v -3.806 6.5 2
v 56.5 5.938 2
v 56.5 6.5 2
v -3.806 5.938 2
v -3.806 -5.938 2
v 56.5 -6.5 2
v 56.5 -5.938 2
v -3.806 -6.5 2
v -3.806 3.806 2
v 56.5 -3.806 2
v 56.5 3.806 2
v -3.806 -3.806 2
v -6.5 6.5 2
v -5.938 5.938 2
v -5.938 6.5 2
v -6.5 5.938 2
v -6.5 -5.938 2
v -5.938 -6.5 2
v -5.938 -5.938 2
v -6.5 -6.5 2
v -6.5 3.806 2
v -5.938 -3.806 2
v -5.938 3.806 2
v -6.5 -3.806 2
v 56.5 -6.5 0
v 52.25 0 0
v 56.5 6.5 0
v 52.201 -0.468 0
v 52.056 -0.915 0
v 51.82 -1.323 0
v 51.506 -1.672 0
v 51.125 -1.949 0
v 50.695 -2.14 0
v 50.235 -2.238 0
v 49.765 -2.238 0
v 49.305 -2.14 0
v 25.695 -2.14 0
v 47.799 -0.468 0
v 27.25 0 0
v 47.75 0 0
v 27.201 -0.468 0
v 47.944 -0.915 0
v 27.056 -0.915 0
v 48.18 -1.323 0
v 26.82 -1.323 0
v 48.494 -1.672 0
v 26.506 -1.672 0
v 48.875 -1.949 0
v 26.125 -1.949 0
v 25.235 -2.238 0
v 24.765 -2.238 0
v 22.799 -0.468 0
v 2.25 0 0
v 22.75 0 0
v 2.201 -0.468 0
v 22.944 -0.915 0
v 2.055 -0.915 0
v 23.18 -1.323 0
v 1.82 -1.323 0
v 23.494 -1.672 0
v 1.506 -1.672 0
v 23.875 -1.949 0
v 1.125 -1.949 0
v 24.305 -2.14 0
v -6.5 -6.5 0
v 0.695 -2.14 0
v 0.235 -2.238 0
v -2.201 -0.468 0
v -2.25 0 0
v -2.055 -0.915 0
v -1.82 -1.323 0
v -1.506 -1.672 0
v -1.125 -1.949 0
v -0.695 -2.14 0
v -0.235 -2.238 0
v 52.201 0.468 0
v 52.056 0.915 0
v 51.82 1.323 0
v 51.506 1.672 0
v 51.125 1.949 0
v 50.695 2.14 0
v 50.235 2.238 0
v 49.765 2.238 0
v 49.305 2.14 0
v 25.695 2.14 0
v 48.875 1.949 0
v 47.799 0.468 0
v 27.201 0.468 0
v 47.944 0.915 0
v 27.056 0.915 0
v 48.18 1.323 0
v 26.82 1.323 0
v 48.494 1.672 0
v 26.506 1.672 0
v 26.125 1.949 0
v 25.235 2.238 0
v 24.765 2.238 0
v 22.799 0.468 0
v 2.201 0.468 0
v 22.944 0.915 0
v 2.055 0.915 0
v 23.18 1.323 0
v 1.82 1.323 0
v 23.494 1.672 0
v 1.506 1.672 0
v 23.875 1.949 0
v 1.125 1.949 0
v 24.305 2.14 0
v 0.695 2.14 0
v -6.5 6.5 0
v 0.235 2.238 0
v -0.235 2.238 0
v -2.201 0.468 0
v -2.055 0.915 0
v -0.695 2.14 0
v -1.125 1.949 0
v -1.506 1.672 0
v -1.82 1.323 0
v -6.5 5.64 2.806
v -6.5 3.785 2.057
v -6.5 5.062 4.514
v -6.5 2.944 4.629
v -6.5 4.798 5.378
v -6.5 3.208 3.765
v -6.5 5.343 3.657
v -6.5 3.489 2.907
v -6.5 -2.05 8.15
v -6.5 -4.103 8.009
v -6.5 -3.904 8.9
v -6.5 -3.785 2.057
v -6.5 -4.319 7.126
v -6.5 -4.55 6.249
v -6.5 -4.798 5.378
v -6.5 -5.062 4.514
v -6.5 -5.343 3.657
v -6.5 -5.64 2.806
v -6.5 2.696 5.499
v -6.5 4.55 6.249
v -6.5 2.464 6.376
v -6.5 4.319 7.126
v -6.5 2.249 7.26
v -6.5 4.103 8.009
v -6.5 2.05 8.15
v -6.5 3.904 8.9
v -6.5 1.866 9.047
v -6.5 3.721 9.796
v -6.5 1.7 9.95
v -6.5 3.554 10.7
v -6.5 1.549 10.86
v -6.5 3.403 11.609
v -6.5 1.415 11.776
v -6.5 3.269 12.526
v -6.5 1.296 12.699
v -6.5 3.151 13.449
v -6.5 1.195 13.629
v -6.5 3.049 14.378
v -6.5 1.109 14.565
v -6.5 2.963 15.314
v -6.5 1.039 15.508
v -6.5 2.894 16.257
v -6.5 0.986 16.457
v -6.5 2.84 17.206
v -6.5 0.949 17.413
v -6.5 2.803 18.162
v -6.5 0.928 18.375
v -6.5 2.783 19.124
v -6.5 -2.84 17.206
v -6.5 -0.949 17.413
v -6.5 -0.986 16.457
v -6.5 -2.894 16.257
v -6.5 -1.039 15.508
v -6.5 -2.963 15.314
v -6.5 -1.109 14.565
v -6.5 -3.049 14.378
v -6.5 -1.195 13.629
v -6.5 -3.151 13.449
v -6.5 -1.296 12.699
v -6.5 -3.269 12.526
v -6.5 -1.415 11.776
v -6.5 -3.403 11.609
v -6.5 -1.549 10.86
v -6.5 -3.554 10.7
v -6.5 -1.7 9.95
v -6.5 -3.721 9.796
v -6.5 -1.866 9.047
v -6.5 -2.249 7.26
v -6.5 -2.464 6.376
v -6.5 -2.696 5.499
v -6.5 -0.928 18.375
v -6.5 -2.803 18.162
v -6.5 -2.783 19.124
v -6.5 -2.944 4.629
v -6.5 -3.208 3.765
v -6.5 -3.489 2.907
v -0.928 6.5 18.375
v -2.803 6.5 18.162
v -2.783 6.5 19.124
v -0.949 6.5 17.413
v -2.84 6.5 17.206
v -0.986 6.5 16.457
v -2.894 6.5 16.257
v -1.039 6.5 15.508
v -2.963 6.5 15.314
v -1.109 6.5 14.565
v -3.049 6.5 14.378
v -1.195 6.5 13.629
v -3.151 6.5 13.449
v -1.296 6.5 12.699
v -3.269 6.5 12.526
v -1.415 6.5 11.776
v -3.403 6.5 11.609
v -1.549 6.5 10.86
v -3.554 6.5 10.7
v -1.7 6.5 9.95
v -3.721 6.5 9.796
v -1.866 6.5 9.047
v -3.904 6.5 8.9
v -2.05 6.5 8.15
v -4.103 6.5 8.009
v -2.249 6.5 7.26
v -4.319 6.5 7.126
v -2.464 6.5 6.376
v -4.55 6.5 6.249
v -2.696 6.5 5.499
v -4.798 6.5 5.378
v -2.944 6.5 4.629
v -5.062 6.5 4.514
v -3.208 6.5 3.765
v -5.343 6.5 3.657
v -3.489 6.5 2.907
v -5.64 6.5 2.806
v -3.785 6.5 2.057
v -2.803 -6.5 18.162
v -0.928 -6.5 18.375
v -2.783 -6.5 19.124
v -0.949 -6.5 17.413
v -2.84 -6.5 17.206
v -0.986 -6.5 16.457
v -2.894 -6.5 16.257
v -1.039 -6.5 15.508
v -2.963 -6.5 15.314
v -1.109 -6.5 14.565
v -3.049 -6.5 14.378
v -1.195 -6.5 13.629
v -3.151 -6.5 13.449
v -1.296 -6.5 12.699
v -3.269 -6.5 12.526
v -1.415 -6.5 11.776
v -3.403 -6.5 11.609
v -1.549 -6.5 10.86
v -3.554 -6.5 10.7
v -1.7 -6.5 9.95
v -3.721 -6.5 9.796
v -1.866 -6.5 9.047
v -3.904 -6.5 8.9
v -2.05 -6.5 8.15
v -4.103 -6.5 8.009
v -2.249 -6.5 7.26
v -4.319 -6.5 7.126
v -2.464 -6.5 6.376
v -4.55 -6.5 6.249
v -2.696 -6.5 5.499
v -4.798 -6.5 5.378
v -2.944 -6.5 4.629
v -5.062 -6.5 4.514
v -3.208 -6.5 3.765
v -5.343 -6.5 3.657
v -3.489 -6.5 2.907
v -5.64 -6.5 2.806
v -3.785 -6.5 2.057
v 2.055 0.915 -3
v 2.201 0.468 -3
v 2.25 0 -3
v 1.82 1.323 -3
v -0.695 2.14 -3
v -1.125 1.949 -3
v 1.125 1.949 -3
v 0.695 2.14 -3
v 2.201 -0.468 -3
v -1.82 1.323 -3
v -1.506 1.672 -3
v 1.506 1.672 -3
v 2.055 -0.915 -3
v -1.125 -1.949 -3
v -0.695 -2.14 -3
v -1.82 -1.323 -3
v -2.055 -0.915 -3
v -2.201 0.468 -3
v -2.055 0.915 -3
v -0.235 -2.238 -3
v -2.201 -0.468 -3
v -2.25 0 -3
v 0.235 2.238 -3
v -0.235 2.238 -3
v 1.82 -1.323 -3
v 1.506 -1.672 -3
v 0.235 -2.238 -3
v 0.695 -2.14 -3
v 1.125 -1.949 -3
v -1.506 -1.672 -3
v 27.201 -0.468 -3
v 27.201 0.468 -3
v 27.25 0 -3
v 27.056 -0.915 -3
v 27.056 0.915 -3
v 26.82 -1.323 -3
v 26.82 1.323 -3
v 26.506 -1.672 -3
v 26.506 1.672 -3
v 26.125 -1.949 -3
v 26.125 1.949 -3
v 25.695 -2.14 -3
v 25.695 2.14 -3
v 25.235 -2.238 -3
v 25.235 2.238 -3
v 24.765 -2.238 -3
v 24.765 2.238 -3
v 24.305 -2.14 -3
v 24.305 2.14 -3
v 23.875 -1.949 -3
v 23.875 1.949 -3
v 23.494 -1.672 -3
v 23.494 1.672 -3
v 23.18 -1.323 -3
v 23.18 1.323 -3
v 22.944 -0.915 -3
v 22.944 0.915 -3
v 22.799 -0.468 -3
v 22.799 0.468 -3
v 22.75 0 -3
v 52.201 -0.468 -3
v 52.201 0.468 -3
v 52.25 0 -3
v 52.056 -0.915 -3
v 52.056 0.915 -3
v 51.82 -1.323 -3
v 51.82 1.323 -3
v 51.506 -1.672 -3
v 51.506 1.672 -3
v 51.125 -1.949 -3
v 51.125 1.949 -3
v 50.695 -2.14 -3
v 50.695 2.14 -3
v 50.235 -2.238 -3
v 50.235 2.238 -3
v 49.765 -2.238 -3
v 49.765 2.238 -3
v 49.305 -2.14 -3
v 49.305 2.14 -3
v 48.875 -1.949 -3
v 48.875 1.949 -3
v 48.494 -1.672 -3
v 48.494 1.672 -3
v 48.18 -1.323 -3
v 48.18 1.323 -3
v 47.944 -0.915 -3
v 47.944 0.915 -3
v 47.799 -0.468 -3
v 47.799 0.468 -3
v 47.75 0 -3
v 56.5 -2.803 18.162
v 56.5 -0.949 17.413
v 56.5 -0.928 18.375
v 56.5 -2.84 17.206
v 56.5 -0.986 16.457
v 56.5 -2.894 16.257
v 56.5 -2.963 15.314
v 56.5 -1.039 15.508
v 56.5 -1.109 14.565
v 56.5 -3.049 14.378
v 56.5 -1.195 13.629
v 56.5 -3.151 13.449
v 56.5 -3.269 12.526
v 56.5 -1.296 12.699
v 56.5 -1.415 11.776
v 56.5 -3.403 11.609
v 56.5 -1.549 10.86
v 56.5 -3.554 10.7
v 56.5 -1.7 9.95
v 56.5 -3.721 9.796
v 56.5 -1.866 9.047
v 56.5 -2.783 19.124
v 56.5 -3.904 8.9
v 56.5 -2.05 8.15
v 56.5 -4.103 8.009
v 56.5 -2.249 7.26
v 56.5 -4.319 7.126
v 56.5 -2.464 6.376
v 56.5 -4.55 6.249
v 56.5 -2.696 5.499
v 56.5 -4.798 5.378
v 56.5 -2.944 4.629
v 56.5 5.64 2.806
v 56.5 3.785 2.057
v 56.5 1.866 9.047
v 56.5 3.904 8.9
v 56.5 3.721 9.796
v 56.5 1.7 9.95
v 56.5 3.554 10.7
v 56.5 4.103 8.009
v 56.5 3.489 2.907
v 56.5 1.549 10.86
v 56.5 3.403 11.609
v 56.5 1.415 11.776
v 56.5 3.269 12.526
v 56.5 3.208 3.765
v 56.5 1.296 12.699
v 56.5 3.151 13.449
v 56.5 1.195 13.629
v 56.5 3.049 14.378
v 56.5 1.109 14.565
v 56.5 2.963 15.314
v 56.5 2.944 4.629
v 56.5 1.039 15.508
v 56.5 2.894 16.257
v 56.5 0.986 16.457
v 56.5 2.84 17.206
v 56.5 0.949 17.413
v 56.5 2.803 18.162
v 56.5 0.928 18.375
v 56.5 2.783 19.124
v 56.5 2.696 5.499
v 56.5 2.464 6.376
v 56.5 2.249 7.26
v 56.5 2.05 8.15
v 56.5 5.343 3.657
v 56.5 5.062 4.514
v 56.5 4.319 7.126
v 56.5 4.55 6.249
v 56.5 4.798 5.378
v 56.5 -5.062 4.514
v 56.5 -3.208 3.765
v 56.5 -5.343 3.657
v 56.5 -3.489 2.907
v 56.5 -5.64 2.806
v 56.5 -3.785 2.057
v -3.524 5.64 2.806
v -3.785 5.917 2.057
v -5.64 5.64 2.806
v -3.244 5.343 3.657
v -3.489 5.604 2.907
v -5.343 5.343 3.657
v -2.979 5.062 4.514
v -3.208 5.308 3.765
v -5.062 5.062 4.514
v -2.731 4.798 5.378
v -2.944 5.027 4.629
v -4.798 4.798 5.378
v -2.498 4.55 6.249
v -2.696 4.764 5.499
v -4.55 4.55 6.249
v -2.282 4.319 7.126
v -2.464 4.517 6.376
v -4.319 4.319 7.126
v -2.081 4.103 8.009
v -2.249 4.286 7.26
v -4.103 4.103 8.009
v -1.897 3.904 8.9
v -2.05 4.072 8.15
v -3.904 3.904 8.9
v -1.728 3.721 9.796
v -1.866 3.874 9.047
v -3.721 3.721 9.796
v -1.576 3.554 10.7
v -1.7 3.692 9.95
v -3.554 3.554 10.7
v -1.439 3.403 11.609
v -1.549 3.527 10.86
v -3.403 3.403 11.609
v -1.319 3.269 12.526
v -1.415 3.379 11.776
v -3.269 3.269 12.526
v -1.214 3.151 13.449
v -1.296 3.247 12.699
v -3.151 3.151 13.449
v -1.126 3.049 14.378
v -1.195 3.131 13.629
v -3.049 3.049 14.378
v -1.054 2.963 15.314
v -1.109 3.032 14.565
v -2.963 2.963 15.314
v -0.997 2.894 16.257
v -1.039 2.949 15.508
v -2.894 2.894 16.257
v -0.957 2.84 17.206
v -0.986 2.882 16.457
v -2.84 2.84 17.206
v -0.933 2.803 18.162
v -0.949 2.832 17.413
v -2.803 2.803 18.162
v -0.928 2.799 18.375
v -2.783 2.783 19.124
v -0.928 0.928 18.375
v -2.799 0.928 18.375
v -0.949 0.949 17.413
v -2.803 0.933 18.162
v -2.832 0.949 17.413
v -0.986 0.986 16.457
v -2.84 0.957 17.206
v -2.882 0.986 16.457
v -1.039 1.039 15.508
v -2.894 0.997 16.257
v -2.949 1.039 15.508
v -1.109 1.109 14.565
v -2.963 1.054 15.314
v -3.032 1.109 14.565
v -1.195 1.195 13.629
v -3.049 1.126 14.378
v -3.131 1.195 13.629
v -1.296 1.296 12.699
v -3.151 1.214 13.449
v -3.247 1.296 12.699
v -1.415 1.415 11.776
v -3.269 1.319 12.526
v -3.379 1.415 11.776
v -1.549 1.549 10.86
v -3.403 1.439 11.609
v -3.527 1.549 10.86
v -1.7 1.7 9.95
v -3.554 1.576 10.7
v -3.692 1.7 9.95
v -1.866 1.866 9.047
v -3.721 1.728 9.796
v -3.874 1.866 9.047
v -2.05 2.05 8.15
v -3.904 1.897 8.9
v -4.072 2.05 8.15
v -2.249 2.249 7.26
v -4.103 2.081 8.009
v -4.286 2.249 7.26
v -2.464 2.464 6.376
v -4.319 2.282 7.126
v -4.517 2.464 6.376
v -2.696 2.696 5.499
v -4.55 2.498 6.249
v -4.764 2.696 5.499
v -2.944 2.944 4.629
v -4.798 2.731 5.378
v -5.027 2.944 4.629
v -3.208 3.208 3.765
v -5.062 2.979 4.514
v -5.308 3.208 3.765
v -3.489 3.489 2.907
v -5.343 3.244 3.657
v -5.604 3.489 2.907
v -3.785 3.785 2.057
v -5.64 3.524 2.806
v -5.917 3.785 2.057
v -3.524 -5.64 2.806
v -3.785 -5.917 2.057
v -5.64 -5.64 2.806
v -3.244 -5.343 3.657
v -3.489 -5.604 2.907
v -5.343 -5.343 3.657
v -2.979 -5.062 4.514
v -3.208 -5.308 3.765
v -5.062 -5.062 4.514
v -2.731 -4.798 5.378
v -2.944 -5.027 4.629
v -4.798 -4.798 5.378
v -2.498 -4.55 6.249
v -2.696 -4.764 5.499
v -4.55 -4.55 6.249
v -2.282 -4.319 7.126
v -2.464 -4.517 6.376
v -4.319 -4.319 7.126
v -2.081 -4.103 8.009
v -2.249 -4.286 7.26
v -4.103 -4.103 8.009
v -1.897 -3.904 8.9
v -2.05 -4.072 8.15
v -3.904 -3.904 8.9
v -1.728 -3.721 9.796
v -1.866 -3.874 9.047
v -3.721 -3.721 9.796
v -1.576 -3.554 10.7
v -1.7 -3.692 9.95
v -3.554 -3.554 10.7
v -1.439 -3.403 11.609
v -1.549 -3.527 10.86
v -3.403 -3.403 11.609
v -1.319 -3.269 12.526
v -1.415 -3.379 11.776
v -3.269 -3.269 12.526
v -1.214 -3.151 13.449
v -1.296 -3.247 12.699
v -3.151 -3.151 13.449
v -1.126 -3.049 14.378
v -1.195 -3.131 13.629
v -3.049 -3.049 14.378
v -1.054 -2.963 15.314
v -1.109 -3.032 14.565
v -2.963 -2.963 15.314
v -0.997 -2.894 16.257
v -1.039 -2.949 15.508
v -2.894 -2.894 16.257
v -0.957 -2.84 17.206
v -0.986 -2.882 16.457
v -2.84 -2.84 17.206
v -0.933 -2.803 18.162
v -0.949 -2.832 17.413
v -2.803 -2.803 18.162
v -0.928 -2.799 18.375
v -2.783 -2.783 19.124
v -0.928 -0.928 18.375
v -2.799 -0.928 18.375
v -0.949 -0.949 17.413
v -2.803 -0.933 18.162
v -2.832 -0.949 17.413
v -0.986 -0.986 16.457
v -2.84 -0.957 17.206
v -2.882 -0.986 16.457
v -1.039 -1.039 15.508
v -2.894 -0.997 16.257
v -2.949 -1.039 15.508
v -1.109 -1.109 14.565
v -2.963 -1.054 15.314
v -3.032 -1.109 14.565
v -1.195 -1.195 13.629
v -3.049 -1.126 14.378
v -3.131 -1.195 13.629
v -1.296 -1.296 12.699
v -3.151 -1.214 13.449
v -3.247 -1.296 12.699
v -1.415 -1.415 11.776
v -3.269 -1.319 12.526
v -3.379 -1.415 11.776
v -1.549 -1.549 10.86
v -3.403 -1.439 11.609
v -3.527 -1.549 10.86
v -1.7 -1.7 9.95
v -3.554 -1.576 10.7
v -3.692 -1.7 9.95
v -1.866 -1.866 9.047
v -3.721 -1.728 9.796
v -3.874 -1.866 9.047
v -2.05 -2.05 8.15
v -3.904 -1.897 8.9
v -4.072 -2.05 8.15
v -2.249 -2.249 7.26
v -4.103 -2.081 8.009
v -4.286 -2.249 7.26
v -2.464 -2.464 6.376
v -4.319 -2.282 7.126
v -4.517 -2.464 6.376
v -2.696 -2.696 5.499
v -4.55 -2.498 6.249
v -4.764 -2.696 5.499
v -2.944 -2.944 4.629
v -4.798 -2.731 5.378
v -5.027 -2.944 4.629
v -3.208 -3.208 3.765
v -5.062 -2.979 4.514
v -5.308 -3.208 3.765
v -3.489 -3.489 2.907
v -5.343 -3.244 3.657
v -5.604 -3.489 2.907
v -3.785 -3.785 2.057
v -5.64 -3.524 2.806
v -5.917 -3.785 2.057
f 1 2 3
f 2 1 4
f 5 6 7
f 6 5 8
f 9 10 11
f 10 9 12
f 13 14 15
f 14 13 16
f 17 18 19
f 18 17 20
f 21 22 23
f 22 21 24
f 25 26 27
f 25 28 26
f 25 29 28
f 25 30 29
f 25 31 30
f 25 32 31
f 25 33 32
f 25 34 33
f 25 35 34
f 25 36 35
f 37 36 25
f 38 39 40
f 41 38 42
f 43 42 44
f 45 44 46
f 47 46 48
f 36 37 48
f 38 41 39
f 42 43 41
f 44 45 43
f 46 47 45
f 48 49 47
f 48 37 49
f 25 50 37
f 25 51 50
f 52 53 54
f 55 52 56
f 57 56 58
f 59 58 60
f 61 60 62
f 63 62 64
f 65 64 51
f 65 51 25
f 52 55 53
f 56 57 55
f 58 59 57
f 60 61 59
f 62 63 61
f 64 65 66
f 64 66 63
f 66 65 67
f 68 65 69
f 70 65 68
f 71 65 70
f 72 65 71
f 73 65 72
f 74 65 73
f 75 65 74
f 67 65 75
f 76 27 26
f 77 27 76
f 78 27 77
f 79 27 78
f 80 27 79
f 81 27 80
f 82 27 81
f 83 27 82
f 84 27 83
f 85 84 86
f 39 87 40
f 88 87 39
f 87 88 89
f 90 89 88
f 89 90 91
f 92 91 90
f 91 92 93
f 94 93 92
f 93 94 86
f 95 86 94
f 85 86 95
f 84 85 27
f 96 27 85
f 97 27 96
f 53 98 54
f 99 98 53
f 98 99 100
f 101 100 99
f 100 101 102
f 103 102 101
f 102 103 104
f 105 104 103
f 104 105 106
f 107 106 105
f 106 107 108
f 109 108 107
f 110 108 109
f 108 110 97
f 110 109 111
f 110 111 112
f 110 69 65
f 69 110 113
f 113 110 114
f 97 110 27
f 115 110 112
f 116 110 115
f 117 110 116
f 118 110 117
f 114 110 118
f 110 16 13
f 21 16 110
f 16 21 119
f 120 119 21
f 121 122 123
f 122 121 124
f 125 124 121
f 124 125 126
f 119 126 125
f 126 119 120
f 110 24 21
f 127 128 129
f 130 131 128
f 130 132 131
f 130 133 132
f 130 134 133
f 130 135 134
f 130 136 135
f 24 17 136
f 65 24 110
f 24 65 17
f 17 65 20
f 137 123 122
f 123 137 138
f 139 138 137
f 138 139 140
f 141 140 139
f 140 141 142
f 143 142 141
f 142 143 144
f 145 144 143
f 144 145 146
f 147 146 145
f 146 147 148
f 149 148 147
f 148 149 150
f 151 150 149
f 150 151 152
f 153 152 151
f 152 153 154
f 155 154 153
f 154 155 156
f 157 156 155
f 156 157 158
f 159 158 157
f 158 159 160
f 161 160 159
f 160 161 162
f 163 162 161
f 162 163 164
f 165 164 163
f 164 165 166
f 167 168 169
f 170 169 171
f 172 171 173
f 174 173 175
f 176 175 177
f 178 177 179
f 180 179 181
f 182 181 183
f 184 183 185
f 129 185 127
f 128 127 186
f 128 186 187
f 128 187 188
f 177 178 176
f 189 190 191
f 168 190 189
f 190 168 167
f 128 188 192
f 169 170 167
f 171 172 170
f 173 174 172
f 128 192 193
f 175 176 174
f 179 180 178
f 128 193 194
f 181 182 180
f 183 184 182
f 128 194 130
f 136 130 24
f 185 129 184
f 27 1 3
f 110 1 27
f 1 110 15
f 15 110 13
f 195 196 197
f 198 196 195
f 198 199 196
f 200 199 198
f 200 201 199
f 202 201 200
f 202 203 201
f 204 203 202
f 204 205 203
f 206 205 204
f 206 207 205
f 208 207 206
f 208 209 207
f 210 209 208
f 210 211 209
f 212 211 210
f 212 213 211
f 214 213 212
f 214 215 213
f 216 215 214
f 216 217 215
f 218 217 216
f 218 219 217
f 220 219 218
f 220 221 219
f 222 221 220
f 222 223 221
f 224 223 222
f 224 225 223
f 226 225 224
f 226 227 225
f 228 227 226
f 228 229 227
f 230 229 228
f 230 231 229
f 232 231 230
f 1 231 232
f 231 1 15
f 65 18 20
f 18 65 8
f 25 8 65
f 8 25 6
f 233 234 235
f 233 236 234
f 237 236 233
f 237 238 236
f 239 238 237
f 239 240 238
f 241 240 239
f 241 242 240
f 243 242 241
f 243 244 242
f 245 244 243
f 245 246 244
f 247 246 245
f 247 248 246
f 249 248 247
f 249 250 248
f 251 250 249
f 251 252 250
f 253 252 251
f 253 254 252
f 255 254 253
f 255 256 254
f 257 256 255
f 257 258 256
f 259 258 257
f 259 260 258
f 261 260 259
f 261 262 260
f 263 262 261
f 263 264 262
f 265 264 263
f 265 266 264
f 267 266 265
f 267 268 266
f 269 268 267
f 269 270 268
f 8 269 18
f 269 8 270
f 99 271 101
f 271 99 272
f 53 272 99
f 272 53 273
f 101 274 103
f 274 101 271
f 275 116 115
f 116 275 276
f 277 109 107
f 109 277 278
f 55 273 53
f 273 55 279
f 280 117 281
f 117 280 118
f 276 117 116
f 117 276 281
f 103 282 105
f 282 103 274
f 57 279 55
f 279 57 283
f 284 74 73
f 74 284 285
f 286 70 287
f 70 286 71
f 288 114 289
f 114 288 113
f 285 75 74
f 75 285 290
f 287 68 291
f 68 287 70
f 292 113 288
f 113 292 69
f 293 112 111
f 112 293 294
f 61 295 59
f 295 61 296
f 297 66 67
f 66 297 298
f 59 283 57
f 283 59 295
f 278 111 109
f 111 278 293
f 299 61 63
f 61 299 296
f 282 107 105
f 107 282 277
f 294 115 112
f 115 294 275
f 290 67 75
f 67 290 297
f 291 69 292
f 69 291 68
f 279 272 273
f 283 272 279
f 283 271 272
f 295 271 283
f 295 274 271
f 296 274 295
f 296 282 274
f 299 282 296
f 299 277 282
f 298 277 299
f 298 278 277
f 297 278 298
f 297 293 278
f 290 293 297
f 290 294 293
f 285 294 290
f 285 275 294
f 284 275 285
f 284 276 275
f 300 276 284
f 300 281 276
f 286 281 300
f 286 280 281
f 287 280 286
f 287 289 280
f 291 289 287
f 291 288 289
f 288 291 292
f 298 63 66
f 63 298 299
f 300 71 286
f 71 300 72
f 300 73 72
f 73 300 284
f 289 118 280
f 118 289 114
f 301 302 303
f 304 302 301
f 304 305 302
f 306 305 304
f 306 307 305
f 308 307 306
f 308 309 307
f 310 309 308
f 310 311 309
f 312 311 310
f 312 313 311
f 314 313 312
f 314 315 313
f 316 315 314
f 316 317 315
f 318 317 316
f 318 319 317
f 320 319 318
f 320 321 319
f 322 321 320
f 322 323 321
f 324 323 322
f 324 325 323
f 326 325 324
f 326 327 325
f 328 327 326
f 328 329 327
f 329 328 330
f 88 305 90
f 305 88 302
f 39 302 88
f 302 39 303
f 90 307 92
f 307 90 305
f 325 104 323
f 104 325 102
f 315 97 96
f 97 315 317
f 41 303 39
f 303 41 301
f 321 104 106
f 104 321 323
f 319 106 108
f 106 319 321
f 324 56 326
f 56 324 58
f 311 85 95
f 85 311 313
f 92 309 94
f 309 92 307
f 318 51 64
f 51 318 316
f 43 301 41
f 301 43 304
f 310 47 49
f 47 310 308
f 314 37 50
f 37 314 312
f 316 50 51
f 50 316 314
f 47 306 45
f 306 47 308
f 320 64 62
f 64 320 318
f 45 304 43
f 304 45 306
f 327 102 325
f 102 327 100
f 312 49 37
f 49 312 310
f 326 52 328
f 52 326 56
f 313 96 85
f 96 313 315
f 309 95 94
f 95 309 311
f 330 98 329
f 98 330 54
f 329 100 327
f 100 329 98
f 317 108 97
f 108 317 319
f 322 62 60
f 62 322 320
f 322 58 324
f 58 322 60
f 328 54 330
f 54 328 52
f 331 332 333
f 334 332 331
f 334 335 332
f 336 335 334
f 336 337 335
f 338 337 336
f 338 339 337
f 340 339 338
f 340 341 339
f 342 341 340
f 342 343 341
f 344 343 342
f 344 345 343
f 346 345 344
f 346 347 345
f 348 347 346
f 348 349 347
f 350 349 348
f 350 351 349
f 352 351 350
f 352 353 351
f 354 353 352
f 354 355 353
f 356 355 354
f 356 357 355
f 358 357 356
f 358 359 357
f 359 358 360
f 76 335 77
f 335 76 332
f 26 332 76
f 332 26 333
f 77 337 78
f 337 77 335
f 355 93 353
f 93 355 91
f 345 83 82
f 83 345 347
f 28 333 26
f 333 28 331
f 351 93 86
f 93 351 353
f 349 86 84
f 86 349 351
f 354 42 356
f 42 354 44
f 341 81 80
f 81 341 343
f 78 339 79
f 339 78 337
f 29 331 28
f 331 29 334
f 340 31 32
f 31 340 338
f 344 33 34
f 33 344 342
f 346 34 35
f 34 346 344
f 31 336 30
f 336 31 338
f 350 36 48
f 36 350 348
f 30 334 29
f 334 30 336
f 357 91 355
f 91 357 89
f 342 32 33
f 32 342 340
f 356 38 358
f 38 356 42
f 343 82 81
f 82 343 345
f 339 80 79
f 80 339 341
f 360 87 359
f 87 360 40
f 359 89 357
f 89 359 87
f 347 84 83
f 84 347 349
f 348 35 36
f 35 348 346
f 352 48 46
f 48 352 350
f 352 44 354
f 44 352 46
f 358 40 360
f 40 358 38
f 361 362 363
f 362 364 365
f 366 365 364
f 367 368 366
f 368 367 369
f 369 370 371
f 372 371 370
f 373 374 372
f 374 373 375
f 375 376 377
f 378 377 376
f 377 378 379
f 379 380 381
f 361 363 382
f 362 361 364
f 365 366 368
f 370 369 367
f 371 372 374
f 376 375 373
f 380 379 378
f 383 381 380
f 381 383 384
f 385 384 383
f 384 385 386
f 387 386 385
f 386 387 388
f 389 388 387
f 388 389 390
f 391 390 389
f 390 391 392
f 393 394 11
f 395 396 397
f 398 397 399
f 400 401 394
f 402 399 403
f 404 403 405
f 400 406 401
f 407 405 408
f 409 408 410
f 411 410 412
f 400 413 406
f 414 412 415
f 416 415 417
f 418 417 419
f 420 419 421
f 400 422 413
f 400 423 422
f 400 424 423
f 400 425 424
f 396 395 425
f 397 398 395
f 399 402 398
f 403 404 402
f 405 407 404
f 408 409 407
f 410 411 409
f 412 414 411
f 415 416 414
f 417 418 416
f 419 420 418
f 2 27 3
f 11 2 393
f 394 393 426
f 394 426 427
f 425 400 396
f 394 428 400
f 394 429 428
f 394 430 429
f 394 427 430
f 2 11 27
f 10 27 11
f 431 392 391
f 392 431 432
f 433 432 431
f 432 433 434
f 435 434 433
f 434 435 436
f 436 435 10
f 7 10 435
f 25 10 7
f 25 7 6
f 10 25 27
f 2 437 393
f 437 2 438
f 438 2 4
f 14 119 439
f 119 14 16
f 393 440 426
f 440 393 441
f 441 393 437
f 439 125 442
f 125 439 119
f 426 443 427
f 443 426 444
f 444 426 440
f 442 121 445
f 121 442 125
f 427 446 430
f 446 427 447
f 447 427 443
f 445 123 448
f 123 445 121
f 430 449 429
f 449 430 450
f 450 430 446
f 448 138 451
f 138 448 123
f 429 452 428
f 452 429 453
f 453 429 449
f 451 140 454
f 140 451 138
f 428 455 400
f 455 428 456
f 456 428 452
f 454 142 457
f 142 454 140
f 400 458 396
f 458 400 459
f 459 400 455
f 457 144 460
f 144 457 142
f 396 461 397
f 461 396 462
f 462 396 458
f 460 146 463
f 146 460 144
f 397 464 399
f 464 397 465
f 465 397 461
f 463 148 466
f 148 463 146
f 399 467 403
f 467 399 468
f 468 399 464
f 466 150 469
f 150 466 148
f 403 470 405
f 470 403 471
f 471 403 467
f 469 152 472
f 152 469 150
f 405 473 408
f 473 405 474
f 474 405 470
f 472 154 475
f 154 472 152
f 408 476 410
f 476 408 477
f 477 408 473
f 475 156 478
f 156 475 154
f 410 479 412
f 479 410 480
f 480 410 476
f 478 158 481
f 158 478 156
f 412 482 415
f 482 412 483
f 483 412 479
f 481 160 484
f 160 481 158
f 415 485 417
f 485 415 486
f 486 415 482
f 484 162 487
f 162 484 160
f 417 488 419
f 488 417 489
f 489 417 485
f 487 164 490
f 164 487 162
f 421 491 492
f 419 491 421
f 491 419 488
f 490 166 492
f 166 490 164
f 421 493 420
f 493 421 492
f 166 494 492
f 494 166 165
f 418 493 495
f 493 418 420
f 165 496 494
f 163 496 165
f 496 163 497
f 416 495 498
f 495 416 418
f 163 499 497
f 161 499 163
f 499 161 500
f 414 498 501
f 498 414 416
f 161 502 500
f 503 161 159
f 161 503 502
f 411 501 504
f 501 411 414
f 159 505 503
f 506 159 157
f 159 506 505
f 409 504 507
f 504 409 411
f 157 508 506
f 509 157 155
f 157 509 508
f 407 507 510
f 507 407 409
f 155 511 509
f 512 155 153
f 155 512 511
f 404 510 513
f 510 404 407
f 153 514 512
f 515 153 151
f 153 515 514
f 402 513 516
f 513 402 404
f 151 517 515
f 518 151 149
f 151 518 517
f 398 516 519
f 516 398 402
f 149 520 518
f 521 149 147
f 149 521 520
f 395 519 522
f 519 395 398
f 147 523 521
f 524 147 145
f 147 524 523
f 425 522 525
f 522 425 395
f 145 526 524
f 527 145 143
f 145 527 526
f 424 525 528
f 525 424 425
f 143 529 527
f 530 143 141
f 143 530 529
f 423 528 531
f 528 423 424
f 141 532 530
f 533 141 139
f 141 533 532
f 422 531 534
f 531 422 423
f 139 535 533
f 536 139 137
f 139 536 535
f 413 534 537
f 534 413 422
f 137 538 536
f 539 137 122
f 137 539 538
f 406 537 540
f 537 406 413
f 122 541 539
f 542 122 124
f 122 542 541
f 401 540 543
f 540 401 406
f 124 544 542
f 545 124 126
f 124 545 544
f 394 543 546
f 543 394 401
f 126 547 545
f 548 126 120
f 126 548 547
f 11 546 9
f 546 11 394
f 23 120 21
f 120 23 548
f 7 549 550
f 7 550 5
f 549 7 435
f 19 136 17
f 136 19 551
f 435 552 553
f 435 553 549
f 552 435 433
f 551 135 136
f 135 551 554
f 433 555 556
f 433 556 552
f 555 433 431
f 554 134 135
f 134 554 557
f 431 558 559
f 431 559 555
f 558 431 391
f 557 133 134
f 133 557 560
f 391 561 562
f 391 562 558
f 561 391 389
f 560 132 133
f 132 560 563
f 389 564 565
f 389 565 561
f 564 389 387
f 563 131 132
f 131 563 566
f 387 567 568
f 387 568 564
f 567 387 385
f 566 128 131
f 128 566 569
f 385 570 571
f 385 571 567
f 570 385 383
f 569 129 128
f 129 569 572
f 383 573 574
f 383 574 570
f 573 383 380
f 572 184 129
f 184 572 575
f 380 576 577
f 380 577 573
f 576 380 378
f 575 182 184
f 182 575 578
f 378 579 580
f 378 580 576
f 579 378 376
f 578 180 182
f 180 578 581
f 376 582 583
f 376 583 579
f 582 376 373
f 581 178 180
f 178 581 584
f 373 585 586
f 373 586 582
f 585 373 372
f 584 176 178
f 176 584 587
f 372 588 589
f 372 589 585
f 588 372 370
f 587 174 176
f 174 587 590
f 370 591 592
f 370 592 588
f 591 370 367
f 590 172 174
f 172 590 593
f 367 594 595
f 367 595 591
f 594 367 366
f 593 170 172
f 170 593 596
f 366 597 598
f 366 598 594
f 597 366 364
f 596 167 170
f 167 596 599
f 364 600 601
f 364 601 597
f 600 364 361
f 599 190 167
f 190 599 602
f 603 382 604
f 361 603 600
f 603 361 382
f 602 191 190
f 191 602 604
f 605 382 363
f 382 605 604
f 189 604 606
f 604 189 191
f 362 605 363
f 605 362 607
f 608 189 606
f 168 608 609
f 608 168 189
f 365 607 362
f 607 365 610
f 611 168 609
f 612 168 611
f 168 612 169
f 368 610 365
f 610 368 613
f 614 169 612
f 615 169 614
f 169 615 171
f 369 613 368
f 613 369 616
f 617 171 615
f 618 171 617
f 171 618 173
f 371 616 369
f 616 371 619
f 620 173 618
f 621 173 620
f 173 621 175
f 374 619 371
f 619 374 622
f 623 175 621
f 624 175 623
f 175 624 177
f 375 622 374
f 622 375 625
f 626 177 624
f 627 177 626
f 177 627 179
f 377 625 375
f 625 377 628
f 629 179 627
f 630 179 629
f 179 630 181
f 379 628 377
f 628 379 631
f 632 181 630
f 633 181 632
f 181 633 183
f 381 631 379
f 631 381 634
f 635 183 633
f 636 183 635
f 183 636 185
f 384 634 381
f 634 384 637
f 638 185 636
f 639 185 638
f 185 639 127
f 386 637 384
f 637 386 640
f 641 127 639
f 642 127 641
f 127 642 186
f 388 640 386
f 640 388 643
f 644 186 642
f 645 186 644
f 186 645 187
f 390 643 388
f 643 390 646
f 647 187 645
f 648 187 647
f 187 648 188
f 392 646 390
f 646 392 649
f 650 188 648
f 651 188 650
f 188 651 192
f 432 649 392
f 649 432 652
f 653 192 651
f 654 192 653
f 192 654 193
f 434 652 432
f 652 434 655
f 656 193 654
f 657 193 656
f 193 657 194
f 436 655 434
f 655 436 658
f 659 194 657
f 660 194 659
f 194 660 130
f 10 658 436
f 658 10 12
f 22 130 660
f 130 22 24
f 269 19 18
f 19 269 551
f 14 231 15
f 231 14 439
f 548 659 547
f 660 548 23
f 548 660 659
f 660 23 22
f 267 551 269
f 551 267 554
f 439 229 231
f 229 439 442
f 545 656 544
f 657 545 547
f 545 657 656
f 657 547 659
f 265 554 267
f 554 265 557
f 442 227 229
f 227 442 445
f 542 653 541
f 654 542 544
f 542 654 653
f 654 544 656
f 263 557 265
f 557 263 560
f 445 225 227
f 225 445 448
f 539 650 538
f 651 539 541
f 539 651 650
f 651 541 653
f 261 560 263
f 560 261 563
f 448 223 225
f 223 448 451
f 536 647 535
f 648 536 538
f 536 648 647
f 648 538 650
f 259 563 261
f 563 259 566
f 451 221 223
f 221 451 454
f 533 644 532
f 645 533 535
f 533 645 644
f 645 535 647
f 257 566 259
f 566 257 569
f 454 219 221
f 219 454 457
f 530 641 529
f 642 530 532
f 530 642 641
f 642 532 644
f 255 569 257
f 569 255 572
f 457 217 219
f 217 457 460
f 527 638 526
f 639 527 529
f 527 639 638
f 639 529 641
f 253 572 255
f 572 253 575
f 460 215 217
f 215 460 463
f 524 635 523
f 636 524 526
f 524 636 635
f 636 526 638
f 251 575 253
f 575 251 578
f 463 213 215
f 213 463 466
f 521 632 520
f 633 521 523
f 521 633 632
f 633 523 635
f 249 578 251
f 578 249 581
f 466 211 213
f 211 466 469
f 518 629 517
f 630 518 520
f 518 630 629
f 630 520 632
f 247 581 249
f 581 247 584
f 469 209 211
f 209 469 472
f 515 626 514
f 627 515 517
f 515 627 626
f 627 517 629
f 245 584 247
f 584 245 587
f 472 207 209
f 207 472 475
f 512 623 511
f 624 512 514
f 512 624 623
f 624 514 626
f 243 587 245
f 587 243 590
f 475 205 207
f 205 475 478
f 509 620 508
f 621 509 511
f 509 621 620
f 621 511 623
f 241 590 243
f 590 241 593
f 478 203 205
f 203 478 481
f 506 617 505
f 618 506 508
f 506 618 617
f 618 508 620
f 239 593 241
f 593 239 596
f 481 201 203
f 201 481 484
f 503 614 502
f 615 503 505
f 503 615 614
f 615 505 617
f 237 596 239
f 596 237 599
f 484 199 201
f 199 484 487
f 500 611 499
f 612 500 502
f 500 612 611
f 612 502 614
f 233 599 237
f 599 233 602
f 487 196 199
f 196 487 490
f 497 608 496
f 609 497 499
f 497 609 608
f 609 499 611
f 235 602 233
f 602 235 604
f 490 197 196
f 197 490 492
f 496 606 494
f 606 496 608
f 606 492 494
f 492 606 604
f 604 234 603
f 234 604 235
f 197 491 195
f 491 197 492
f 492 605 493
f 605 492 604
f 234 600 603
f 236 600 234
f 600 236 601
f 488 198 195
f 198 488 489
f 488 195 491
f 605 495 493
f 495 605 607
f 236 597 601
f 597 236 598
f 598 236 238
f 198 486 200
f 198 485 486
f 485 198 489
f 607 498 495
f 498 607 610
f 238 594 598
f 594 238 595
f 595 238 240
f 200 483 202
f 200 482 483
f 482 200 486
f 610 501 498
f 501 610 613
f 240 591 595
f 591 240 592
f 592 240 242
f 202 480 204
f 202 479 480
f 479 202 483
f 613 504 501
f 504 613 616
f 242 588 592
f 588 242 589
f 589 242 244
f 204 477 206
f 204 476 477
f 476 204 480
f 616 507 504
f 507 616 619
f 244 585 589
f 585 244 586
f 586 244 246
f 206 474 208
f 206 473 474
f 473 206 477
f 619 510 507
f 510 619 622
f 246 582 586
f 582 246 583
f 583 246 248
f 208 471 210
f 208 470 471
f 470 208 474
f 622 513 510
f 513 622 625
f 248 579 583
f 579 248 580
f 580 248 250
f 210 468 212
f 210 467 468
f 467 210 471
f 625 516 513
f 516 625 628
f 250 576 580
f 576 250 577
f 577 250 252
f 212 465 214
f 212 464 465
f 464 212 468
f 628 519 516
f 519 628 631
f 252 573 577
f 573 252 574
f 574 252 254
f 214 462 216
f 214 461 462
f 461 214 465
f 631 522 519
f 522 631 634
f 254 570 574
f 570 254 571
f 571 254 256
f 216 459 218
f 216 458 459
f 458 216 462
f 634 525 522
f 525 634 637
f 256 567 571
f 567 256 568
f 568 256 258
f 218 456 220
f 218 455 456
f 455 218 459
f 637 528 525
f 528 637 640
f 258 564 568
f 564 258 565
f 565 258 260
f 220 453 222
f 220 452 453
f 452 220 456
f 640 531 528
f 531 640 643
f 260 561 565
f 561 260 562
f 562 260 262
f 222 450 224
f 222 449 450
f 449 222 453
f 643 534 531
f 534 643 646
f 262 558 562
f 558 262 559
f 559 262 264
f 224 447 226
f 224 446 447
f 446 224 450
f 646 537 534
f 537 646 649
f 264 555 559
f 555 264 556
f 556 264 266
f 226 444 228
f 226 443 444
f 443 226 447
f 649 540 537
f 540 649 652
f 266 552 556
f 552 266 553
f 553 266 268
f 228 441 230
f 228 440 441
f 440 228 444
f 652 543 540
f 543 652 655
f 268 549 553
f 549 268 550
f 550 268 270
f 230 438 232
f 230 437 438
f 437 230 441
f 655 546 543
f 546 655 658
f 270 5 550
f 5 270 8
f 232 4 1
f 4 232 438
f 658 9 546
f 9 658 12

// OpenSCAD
// file: common.scad
CENTER_SIZE = 9;
SLEEVE_REACH = 56.5;
GROOVE_WIDTH = 9;
WALL_HEIGHT = 10;
WALL_THICKNESS = 2;
BASE_THICKNESS = 2;
TOTAL_WIDTH = GROOVE_WIDTH + 2 * WALL_THICKNESS;
SLEEVE_LENGTH = SLEEVE_REACH - CENTER_SIZE/2;
DOWEL_DIAMETER = 4.5;
DOWEL_DEPTH = 3;
CARDBOARD_THICKNESS = 2;
GROOVE_BOTTOM = CARDBOARD_THICKNESS;
CURVE_POWER = 2;
CURVE_POINTS = 20;
TILT_ANGLE_EXTRA = 5;
FLEXIBLE_WALL_HEIGHT = WALL_HEIGHT * 2;
function wall_curve(z) =
    GROOVE_BOTTOM/2 + (GROOVE_WIDTH/2 - GROOVE_BOTTOM/2) * pow(z/(FLEXIBLE_WALL_HEIGHT - BASE_THICKNESS), CURVE_POWER);
module curved_wall_profile(side) {
    wall_h = FLEXIBLE_WALL_HEIGHT - BASE_THICKNESS;
    points_inner = [for (i = [0:CURVE_POINTS])
        [wall_curve(i * wall_h / CURVE_POINTS) * side,
         i * wall_h / CURVE_POINTS]
    ];
    points_outer = [for (i = [0:CURVE_POINTS])
        [(wall_curve(i * wall_h / CURVE_POINTS) + WALL_THICKNESS) * side,
         i * wall_h / CURVE_POINTS]
    ];
    all_points = concat(
        [[points_inner[0][0], 0]],
        points_inner,
        [points_outer[len(points_outer)-1]],
        [for (i = [len(points_outer)-1:-1:0]) points_outer[i]],
        [[points_outer[0][0], 0]]
    );
    polygon(all_points);
}
module draw_regular_wall_base(width) {
    translate([0, 0, BASE_THICKNESS])
        cube([width, WALL_THICKNESS, WALL_HEIGHT - BASE_THICKNESS]);
}
module draw_flexible_wall_base(width) {
    tilt_angle = atan((GROOVE_WIDTH/2 - GROOVE_BOTTOM/2) / (FLEXIBLE_WALL_HEIGHT - BASE_THICKNESS)) + TILT_ANGLE_EXTRA;
    rotate([0, 0, 90])
        rotate([tilt_angle + 6, 0, 0])
            rotate([90, 0, 90])
                linear_extrude(height = width)
                    curved_wall_profile(1);
}
module draw_center_base(with_dowel = false) {
    union() {
        translate([-TOTAL_WIDTH/2, -TOTAL_WIDTH/2, 0])
            cube([TOTAL_WIDTH, TOTAL_WIDTH, BASE_THICKNESS]);
        if (with_dowel) {
            translate([0, 0, -DOWEL_DEPTH])
                cylinder(h=DOWEL_DEPTH, d=DOWEL_DIAMETER, $fn=30);
        }
    }
}
module place_regular_center_wall(side) {
    if (side == 0) {
        translate([CENTER_SIZE/2 + WALL_THICKNESS, -TOTAL_WIDTH/2, 0])
            rotate([0, 0, 90])
                draw_regular_wall_base(TOTAL_WIDTH);
    } else if (side == 1) {
        translate([-TOTAL_WIDTH/2, CENTER_SIZE/2, 0])
            draw_regular_wall_base(TOTAL_WIDTH);
    } else if (side == 2) {
        translate([-CENTER_SIZE/2, -TOTAL_WIDTH/2, 0])
            rotate([0, 0, 90])
                draw_regular_wall_base(TOTAL_WIDTH);
    } else if (side == 3) {
        translate([-TOTAL_WIDTH/2, -CENTER_SIZE/2 - WALL_THICKNESS, 0])
            draw_regular_wall_base(TOTAL_WIDTH);
    }
}
module place_flexible_center_wall(side) {
    if (side == 0) {
        translate([CENTER_SIZE/2 - WALL_THICKNESS/2, TOTAL_WIDTH/2, 0])
            rotate([0, 0, 180])
                draw_flexible_wall_base(TOTAL_WIDTH);
    } else if (side == 1) {
        translate([-TOTAL_WIDTH/2, CENTER_SIZE/2 - WALL_THICKNESS/2, 0])
            rotate([0, 0, 270])
                draw_flexible_wall_base(TOTAL_WIDTH);
    } else if (side == 2) {
        translate([-CENTER_SIZE/2 + WALL_THICKNESS/2, -TOTAL_WIDTH/2, 0])
            draw_flexible_wall_base(TOTAL_WIDTH);
    } else if (side == 3) {
        translate([CENTER_SIZE/2 + WALL_THICKNESS, -TOTAL_WIDTH/2 + WALL_THICKNESS + WALL_THICKNESS/2, 0])
            rotate([0, 0, 90])
                draw_flexible_wall_base(TOTAL_WIDTH);
    }
}
module place_center_wall(side, wall_type = "regular") {
    if (wall_type == "regular") {
        place_regular_center_wall(side);
    } else if (wall_type == "flexible") {
        place_flexible_center_wall(side);
    }
}
module draw_sleeve_base(with_dowel = false) {
    union() {
        translate([0, -TOTAL_WIDTH/2, 0])
            cube([SLEEVE_LENGTH, TOTAL_WIDTH, BASE_THICKNESS]);
        if (with_dowel) {
            translate([25 - CENTER_SIZE/2, 0, -DOWEL_DEPTH])
                cylinder(h=DOWEL_DEPTH, d=DOWEL_DIAMETER, $fn=30);
            translate([50 - CENTER_SIZE/2, 0, -DOWEL_DEPTH])
                cylinder(h=DOWEL_DEPTH, d=DOWEL_DIAMETER, $fn=30);
        }
    }
}
module draw_regular_sleeve_wall(wall_side) {
    y_offset = (wall_side == "left") ? -TOTAL_WIDTH/2 : TOTAL_WIDTH/2 - WALL_THICKNESS;
    translate([0, y_offset, 0])
        draw_regular_wall_base(SLEEVE_LENGTH);
}
module draw_flexible_sleeve_wall(side) {
    if (side == "left") {
        translate([0, TOTAL_WIDTH/2 - WALL_THICKNESS/2 - WALL_THICKNESS, 0])
            rotate([0, 0, 270])
                draw_flexible_wall_base(SLEEVE_LENGTH);
    } else if (side == "right") {
        translate([SLEEVE_LENGTH, -TOTAL_WIDTH/2 + WALL_THICKNESS + WALL_THICKNESS/2, 0])
            rotate([0, 0, 90])
                draw_flexible_wall_base(SLEEVE_LENGTH);
    }
}
module draw_sleeve_wall(wall_side, wall_type = "regular") {
    if (wall_type == "regular") {
        draw_regular_sleeve_wall(wall_side);
    } else if (wall_type == "flexible") {
        draw_flexible_sleeve_wall(wall_side);
    }
}
module draw_full_sleeve(with_dowel = false, wall_type = "regular") {
    union() {
        draw_sleeve_base(with_dowel);
        draw_sleeve_wall("left", wall_type);
        draw_sleeve_wall("right", wall_type);
    }
}
module place_sleeve(side, with_dowel = false, wall_type = "regular") {
    if (side == 0) {
        translate([CENTER_SIZE/2, 0, 0])
            draw_full_sleeve(with_dowel, wall_type);
    } else if (side == 1) {
        rotate([0, 0, 90])
            translate([CENTER_SIZE/2, 0, 0])
                draw_full_sleeve(with_dowel, wall_type);
    } else if (side == 2) {
        rotate([0, 0, 180])
            translate([CENTER_SIZE/2, 0, 0])
                draw_full_sleeve(with_dowel, wall_type);
    } else if (side == 3) {
        rotate([0, 0, 270])
            translate([CENTER_SIZE/2, 0, 0])
                draw_full_sleeve(with_dowel, wall_type);
    }
}
module add_dowel(x, y, dowel_diameter, dowel_depth) {
    translate([x, y, -dowel_depth])
        cylinder(h=dowel_depth, d=dowel_diameter, $fn=30);
}
// main file
use <common.scad>

union() {
    draw_center_base(with_dowel = true);
    place_center_wall(1, "flexible");
    place_center_wall(2, "flexible");
    place_center_wall(3, "flexible");
    place_sleeve(0, with_dowel = true, wall_type = "flexible");
}
